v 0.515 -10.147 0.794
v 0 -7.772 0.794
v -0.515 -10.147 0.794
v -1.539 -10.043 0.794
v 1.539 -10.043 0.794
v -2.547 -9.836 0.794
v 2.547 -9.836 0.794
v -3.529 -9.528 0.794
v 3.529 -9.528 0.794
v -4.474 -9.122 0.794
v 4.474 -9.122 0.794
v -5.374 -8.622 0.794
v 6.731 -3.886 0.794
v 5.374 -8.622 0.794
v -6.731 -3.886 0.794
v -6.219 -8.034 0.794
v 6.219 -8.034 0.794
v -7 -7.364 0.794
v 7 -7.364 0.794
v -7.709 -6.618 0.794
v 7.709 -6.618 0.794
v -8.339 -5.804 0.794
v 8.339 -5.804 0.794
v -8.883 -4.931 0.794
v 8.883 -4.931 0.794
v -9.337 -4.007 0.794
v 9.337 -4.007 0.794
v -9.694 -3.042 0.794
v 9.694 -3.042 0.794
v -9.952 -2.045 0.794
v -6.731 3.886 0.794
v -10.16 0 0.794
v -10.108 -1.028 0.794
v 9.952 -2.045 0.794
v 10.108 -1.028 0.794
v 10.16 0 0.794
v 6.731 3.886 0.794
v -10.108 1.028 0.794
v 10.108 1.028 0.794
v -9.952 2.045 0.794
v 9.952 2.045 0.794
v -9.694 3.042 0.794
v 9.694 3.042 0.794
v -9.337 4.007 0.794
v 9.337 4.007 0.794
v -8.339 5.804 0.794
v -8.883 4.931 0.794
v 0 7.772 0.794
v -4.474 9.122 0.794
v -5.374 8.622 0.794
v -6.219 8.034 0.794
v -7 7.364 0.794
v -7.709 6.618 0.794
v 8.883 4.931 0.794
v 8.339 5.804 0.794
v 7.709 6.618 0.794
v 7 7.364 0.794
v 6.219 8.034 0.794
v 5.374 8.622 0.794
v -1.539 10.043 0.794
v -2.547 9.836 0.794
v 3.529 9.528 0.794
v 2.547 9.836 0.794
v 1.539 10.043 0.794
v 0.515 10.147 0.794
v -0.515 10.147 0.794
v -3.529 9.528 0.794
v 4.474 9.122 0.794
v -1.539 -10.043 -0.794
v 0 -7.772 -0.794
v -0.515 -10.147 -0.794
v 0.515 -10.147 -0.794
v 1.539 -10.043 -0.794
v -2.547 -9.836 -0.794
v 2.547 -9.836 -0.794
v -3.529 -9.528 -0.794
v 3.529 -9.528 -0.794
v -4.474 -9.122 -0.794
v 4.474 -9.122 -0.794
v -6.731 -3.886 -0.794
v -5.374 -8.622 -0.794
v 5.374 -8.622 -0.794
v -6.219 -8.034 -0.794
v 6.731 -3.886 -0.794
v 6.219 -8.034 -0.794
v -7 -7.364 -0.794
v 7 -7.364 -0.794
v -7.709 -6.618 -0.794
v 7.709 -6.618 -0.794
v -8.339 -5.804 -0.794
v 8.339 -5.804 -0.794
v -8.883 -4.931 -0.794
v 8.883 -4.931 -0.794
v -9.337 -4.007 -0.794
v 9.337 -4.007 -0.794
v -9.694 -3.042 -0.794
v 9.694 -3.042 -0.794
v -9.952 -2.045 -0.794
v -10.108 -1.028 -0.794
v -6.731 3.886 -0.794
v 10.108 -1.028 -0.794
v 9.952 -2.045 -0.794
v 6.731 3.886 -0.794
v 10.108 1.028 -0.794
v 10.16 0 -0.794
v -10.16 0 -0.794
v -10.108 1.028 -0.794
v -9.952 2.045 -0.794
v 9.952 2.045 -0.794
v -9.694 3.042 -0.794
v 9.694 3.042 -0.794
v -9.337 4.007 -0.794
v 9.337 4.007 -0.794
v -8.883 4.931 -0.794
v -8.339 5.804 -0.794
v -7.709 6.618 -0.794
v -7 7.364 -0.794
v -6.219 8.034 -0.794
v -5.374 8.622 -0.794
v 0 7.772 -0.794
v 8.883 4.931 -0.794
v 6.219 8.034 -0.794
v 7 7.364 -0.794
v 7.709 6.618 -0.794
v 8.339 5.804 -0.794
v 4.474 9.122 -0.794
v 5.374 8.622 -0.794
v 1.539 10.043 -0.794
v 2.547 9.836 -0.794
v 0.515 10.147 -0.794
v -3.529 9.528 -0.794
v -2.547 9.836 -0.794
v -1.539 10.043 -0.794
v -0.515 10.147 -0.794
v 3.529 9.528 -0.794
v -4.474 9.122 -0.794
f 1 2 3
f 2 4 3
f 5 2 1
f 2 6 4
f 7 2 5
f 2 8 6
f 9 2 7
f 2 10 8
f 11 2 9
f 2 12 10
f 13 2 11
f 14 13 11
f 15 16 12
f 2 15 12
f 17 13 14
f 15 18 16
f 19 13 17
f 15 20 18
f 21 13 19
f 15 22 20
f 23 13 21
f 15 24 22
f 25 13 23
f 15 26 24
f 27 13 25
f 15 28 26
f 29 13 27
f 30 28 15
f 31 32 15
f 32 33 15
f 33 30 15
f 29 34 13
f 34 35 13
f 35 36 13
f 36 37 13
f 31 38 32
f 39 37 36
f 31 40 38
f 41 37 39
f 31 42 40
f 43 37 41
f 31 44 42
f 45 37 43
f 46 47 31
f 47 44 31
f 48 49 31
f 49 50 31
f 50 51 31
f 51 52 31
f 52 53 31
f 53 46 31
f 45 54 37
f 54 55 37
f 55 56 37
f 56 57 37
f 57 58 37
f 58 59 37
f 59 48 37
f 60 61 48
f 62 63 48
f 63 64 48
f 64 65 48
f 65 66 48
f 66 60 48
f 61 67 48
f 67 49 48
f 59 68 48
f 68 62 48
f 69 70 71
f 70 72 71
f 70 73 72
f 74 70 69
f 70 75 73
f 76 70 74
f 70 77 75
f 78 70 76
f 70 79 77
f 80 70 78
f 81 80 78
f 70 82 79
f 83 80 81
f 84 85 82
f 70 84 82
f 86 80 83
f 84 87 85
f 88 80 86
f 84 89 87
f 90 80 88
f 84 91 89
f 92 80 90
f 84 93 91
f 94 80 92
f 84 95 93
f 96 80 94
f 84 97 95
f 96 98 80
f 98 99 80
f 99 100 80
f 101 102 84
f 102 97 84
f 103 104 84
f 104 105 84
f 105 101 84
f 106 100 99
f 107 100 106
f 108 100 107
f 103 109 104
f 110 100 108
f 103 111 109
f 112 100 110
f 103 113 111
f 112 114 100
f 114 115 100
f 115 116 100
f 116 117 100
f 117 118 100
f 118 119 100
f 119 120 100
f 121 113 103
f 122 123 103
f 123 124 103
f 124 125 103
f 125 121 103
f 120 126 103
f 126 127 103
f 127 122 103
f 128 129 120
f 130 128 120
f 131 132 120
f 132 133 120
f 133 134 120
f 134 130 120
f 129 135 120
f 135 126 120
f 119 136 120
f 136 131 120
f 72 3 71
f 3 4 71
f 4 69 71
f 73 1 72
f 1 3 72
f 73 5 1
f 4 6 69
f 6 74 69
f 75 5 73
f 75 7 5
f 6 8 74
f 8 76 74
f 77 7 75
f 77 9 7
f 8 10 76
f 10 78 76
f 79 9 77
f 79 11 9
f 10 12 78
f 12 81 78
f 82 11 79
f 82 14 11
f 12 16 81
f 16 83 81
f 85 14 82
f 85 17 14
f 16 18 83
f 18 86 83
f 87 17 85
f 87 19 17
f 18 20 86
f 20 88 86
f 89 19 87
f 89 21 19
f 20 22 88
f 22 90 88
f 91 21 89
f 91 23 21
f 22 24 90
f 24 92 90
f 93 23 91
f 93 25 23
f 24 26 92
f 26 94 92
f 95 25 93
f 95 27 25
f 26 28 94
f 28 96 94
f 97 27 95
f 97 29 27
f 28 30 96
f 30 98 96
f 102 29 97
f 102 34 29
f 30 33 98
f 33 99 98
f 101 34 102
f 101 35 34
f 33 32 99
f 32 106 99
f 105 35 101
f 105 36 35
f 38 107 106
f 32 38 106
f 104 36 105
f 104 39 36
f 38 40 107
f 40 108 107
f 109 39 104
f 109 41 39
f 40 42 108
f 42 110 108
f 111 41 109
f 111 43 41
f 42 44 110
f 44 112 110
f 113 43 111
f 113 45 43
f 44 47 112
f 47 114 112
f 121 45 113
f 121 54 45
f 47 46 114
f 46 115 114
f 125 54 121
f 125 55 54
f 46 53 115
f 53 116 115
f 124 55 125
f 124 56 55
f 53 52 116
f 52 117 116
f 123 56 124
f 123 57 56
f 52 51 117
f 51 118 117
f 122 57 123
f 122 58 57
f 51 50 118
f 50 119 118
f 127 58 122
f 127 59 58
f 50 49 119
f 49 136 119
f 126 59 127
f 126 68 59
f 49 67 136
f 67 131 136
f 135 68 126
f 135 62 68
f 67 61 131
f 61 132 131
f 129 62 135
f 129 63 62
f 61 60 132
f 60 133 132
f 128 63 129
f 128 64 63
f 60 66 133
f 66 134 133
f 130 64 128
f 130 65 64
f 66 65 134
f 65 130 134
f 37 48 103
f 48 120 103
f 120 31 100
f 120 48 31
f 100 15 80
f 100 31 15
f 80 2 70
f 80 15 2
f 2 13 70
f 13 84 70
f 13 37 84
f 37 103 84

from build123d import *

# Parameters (mm, degrees)
SKETCH1_R           = 10.16
BOSS_EXTRUDE1_DEPTH = 0.79375


with BuildPart() as part:
    # Sketch1 → Boss-Extrude1 (new, symmetric)
    with BuildSketch(Plane.XY):
        Circle(SKETCH1_R)
        Polygon((0, 7.772289324), (-6.731, 3.886144662), (-6.731, -3.886144662), (0, -7.772289324), (6.731, -3.886144662), (6.731, 3.886144662), align=None, mode=Mode.SUBTRACT)
    extrude(amount=BOSS_EXTRUDE1_DEPTH, both=True)


solid = part.part
